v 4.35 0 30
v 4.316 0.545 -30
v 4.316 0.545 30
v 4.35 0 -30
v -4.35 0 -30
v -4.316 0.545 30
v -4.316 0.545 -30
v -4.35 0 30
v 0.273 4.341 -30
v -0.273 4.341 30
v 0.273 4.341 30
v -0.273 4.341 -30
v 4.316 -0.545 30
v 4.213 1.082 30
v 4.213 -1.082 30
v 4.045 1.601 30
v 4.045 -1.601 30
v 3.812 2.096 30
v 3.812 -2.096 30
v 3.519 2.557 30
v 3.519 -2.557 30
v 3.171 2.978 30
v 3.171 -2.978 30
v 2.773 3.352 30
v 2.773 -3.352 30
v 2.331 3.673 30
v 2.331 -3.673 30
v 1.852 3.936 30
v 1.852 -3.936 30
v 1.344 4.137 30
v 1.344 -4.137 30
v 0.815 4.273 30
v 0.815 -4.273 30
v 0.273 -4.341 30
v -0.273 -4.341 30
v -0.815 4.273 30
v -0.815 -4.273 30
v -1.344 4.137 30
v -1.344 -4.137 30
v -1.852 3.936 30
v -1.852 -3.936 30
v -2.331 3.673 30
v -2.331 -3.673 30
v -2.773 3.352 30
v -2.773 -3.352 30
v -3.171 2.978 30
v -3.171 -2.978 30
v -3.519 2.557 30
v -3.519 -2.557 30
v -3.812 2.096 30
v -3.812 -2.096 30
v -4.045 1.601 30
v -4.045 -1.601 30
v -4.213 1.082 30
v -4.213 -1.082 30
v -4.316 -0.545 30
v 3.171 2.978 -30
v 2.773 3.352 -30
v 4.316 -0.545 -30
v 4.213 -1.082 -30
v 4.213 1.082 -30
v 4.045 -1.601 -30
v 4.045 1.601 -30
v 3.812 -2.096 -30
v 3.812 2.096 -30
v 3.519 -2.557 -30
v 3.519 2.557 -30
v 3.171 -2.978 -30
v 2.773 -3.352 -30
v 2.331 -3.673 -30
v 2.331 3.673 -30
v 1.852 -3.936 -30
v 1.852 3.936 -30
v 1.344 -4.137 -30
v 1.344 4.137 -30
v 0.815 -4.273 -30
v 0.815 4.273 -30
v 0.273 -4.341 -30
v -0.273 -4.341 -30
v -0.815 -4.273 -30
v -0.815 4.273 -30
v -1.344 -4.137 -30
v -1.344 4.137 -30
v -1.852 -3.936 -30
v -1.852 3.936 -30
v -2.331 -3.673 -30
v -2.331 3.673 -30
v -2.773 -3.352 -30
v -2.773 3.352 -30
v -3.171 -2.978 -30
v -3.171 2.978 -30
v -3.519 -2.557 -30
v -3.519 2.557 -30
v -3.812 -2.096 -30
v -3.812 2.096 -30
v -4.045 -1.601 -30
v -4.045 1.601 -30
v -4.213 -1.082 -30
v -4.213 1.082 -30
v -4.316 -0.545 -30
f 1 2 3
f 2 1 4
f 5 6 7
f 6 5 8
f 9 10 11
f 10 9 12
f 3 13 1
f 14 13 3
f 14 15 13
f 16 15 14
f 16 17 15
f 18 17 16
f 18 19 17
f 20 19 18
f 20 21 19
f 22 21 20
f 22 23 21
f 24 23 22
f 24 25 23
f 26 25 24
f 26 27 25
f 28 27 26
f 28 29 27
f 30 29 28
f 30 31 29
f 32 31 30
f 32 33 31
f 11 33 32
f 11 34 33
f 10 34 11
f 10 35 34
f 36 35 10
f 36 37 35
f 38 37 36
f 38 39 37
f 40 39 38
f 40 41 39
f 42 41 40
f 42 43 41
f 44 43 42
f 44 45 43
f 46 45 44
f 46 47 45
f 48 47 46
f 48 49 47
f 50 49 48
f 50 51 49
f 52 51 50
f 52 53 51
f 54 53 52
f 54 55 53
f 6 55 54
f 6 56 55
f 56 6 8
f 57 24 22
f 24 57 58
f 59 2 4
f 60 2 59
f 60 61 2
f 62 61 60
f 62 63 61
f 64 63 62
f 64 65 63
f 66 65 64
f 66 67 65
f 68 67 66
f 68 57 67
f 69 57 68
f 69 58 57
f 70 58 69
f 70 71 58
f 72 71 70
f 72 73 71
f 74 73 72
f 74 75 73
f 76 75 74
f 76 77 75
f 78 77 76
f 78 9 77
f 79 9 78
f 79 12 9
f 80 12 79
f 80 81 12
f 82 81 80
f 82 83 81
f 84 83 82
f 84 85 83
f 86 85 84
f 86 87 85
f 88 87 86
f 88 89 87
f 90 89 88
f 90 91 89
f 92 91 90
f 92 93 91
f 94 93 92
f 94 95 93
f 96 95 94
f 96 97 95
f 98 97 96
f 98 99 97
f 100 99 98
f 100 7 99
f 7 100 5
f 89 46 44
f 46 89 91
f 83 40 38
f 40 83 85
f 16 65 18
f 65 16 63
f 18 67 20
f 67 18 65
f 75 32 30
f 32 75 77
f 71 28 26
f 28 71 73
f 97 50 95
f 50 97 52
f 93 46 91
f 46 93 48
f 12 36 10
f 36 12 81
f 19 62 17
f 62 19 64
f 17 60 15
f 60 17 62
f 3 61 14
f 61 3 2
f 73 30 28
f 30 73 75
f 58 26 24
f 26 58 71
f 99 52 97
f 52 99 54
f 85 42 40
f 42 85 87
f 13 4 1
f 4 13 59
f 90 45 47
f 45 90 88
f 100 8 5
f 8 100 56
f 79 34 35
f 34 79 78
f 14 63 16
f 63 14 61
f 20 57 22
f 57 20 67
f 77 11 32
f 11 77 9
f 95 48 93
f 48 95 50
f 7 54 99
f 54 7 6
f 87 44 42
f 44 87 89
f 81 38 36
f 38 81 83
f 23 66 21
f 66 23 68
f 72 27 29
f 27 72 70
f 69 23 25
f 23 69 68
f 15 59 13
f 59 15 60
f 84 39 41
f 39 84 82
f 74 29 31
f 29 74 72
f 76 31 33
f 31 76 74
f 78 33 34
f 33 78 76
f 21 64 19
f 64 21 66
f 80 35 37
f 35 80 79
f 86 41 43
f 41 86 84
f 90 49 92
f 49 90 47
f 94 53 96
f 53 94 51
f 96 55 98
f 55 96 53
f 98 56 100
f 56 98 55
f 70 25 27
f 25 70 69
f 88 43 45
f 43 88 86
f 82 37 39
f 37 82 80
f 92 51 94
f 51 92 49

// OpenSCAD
$fn = 50;


difference() {
	union() {
		translate(v = [0, 0, -30.0000000000]) {
			cylinder(h = 60, r = 4.3500000000);
		}
	}
	union() {
		translate(v = [0, 0, -100.0000000000]) {
			cylinder(h = 200, r = 0);
		}
	}
}
